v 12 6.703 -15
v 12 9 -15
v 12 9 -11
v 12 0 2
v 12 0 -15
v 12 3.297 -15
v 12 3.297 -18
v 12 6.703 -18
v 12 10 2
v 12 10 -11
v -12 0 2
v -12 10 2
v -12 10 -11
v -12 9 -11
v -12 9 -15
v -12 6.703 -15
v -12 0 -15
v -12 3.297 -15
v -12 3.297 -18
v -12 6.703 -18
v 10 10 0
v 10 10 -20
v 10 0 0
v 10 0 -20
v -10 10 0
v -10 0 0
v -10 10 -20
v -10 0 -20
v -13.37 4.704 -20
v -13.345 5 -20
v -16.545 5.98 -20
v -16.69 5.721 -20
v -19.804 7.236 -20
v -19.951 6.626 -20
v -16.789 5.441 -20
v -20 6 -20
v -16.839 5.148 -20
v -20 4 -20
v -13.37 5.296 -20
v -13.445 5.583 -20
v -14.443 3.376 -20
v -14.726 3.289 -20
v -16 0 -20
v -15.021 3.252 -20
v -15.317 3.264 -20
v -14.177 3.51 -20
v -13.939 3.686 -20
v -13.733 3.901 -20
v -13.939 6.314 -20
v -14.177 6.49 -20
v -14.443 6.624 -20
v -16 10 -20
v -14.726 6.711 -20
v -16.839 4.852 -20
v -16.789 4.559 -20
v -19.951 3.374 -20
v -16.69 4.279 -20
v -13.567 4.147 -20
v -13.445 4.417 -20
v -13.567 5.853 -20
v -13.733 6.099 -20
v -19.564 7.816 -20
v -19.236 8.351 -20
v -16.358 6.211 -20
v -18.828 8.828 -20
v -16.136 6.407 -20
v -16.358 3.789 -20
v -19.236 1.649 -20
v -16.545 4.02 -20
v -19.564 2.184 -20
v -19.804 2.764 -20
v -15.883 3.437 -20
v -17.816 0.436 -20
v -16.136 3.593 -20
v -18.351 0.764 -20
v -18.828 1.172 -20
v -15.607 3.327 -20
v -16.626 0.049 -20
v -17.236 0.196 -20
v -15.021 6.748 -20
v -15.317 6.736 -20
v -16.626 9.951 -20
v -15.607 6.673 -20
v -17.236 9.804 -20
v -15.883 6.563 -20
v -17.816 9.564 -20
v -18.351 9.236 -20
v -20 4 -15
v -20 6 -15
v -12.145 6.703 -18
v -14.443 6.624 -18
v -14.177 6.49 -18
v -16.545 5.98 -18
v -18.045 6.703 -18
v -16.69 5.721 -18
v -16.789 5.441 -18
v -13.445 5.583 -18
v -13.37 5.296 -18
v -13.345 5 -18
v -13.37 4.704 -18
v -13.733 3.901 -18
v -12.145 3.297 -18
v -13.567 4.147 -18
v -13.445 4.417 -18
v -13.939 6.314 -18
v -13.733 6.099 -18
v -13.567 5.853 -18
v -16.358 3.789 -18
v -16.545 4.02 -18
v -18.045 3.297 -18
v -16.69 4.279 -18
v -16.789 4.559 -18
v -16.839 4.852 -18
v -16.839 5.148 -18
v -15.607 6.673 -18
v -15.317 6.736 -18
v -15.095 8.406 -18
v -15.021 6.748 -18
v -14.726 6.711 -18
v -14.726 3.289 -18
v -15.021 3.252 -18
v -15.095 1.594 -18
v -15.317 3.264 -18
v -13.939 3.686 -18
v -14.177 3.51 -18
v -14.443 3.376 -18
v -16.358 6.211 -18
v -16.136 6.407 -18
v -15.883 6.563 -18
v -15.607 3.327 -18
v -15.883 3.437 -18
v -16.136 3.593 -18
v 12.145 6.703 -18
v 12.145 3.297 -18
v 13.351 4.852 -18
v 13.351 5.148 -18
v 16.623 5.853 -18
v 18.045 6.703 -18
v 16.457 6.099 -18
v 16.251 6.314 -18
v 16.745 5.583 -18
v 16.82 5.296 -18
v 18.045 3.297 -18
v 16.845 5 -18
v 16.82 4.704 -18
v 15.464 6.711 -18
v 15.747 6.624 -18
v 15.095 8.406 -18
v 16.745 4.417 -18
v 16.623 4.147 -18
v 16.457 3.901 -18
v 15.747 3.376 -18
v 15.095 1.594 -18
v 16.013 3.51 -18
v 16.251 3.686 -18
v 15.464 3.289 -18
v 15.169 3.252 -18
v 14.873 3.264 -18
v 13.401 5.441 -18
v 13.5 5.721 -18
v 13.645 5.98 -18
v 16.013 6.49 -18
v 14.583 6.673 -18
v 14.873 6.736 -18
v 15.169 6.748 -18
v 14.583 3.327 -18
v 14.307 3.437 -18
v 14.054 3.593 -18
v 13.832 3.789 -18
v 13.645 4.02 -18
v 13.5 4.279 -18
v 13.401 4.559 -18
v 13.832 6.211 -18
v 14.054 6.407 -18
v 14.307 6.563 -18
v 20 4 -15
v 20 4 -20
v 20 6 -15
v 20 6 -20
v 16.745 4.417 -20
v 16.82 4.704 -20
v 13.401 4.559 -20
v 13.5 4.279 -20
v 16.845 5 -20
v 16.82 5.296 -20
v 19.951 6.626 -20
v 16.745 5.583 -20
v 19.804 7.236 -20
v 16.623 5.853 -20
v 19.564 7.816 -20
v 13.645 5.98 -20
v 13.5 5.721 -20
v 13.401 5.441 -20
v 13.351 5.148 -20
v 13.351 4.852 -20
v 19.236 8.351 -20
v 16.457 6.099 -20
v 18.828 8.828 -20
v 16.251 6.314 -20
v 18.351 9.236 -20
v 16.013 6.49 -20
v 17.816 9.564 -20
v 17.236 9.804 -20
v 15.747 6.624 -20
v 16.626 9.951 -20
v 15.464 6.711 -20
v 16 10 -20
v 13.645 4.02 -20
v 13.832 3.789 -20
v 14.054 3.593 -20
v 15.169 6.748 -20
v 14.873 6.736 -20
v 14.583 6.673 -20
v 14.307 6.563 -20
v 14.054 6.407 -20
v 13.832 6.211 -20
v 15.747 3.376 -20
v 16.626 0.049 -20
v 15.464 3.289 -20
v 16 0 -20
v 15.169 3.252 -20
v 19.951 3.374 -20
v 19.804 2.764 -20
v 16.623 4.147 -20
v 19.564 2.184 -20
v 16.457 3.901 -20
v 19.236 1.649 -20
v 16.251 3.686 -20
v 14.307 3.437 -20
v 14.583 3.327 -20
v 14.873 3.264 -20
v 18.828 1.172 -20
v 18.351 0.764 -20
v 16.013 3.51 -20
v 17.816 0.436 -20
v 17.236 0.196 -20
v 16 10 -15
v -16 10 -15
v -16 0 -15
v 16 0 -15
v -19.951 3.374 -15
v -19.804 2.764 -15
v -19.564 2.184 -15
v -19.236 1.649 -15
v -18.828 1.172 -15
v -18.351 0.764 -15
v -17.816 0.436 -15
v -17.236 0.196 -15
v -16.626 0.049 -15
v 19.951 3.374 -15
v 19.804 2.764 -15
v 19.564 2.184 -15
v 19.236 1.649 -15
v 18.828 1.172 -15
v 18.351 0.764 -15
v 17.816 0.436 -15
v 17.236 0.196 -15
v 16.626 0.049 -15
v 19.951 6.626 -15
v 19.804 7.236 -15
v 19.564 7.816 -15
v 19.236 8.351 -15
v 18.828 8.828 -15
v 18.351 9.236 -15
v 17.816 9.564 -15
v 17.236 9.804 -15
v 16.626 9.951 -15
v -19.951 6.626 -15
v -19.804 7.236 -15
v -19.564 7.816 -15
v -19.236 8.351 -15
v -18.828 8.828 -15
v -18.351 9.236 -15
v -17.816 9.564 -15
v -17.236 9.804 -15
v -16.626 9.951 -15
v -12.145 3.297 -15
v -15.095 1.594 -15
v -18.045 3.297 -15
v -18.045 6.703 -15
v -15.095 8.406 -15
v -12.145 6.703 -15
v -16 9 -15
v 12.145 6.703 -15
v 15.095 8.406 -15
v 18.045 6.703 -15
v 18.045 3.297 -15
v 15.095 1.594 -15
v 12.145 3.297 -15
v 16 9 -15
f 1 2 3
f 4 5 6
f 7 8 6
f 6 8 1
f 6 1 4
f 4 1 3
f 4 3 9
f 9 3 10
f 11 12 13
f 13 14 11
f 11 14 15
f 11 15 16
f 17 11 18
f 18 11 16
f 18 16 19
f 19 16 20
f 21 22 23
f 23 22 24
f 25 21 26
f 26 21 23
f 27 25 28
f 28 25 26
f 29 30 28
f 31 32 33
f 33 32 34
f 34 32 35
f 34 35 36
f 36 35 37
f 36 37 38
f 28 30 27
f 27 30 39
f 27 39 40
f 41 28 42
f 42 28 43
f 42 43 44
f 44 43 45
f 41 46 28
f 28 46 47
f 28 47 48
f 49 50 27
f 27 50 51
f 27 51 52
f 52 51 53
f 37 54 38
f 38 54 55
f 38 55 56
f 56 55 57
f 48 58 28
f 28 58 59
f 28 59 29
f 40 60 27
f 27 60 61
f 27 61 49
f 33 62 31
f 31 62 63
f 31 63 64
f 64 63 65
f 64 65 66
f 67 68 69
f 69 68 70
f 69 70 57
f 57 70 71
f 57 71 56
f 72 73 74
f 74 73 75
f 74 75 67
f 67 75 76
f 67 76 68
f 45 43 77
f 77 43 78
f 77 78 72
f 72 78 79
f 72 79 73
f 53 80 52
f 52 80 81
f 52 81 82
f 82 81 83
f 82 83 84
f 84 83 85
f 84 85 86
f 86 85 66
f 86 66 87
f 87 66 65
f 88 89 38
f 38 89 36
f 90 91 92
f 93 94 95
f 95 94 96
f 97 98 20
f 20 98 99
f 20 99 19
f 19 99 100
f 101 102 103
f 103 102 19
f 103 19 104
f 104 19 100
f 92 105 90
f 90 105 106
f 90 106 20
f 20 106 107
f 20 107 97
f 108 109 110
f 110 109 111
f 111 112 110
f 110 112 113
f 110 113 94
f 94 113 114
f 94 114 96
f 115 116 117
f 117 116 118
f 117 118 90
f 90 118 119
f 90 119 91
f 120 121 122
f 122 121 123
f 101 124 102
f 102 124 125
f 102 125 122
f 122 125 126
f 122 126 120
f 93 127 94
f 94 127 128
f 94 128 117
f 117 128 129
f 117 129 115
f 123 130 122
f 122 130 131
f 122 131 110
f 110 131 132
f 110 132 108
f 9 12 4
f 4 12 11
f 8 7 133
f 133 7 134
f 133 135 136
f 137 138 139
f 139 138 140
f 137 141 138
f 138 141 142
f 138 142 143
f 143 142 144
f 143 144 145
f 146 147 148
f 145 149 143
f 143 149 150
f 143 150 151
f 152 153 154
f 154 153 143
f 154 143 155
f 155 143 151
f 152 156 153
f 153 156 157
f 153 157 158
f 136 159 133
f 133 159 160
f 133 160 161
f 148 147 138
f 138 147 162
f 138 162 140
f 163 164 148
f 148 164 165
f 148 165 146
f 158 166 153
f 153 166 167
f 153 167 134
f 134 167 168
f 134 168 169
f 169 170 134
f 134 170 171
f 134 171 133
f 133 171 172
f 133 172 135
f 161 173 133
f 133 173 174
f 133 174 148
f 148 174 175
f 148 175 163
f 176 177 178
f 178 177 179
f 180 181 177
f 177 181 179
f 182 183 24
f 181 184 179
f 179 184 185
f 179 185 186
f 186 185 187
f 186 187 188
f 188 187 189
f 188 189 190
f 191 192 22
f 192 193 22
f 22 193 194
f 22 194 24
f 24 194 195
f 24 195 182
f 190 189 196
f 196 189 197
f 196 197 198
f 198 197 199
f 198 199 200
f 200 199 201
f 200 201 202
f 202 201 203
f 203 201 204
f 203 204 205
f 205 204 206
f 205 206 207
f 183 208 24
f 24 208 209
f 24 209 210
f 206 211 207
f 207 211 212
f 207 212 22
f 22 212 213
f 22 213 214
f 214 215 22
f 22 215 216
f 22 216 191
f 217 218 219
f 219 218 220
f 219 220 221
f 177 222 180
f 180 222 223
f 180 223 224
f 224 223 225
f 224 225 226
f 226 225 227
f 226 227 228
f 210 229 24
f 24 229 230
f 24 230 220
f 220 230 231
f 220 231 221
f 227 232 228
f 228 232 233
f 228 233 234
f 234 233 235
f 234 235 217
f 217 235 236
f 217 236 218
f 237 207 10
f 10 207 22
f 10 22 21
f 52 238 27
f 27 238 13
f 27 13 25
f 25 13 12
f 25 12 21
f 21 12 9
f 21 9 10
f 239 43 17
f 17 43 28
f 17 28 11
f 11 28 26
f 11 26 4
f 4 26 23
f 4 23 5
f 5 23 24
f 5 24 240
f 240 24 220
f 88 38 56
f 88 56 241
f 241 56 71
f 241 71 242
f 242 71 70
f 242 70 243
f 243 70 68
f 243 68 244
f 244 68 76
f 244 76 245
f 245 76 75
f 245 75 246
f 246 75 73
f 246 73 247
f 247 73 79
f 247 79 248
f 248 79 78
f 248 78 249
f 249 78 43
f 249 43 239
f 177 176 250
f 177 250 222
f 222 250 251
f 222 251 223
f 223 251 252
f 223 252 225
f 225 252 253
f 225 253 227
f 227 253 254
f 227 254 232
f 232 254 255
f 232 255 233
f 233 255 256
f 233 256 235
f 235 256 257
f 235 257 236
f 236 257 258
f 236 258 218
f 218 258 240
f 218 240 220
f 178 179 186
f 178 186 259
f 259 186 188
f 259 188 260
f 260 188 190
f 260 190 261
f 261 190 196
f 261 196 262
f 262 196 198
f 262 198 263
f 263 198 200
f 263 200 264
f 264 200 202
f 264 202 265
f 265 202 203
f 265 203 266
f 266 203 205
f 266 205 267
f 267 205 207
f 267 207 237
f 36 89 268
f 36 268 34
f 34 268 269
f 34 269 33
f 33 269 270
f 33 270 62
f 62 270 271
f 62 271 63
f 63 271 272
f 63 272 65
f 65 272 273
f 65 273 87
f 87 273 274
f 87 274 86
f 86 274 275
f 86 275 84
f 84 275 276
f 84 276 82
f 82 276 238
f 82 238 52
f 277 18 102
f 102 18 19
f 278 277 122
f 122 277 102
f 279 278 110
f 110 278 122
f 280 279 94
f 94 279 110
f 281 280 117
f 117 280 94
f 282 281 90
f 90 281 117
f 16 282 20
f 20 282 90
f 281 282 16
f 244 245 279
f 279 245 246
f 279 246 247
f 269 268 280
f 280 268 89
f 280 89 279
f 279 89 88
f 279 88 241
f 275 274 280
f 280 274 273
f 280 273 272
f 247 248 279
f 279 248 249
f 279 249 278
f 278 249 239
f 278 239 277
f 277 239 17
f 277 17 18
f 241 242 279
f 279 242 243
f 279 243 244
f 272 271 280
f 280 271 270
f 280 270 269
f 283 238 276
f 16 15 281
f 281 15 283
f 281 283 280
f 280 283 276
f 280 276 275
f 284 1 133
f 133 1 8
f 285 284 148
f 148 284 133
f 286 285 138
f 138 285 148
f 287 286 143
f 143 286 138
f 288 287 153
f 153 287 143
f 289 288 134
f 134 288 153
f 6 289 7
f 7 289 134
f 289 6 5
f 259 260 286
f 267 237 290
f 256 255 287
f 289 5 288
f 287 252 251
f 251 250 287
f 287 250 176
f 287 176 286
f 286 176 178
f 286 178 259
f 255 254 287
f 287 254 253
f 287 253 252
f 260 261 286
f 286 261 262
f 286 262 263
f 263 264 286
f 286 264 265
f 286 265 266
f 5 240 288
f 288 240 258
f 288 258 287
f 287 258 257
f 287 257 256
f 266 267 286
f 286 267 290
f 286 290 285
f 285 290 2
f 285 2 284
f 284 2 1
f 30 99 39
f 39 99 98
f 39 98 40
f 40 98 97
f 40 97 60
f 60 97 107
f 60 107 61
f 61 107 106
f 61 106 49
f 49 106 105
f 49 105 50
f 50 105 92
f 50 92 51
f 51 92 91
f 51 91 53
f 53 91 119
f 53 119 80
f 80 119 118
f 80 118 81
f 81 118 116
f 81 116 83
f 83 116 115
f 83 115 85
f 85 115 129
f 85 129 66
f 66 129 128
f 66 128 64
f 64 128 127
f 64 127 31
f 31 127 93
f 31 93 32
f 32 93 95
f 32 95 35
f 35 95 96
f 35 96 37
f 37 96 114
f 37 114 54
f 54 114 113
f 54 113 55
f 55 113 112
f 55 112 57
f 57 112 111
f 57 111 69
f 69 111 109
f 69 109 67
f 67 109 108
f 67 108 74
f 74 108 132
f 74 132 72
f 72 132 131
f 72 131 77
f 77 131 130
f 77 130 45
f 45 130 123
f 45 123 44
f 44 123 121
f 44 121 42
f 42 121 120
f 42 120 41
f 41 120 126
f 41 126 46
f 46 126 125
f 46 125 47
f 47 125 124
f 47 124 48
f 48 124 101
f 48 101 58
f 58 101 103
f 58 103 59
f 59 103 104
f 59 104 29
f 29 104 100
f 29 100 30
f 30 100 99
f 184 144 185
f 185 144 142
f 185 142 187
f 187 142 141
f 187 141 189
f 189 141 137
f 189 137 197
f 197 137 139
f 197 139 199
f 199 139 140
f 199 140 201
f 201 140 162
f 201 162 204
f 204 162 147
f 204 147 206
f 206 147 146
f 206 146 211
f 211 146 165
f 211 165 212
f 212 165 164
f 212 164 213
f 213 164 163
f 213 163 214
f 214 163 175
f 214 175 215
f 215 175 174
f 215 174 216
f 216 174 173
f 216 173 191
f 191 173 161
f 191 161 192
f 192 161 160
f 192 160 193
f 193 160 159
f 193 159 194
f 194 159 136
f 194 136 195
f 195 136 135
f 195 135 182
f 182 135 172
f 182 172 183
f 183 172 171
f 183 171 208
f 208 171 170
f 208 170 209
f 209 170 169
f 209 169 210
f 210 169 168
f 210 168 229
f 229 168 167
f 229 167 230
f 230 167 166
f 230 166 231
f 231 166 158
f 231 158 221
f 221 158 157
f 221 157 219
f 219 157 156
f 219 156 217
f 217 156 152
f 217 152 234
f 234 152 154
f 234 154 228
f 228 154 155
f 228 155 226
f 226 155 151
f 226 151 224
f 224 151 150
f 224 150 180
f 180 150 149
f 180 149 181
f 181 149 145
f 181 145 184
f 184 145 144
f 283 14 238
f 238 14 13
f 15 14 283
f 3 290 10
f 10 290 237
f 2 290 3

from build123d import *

# Parameters (mm, degrees)
EXTRUDE_1_DEPTH     = 10
FILLET_1_R          = 4
EXTRUDE_2_DEPTH     = 3
SKETCH_3_R          = 1.75
CUT_EXTRUDE_1_DEPTH = 3
EXTRUDE_3_DEPTH     = 1


with BuildPart() as part:
    # Эскиз1 → Бобышка-Вытянуть1 (new body)
    with BuildSketch(Plane(origin=(0, 0, 0), x_dir=(1, 0, 0), z_dir=(0, 1, 0))):
        Polygon((-10, 0), (10, 0), (10, 20), (20, 20), (20, 18), (12, 18), (12, -2), (-12, -2), (-12, 18), (-20, 18), (-20, 20), (-10, 20), align=None)
    extrude(amount=EXTRUDE_1_DEPTH)

    # Скругление1
    fillet_1_edges = [part.edges().sort_by_distance(p)[0] for p in [
        (20, 0, -19),
        (-20, 0, -19),
        (-20, 10, -19),
        (20, 10, -19),
    ]]
    fillet(fillet_1_edges, radius=FILLET_1_R)

    # Эскиз2 → Бобышка-Вытянуть2 (add)
    with BuildSketch(Plane.XY.offset(-18)):
        with BuildLine():
            Line((-12.145, 6.703183294), (-12, 6.703183294))
            Line((-12, 6.703183294), (-12, 10))
            Line((-12, 10), (-16, 10))
            ThreePointArc((-16, 10), (-18.828427125, 8.828427125), (-20, 6))
            Line((-20, 6), (-20, 4))
            ThreePointArc((-20, 4), (-18.828427125, 1.171572875), (-16, 0))
            Line((-16, 0), (-12, 0))
            Line((-12, 0), (-12, 3.296816706))
            Line((-12, 3.296816706), (-12.145, 3.296816706))
            Line((-12.145, 3.296816706), (-15.095, 1.593633412))
            Line((-15.095, 1.593633412), (-18.045, 3.296816706))
            Line((-18.045, 3.296816706), (-18.045, 6.703183294))
            Line((-18.045, 6.703183294), (-15.095, 8.406366588))
            Line((-15.095, 8.406366588), (-12.145, 6.703183294))
        make_face()
        with BuildLine():
            Line((20, 4), (20, 6))
            ThreePointArc((20, 6), (18.828427125, 8.828427125), (16, 10))
            Line((16, 10), (12, 10))
            Line((12, 10), (12, 6.703183294))
            Line((12, 6.703183294), (12.145, 6.703183294))
            Line((12.145, 6.703183294), (15.095, 8.406366588))
            Line((15.095, 8.406366588), (18.045, 6.703183294))
            Line((18.045, 6.703183294), (18.045, 3.296816706))
            Line((18.045, 3.296816706), (15.095, 1.593633412))
            Line((15.095, 1.593633412), (12.145, 3.296816706))
            Line((12.145, 3.296816706), (12, 3.296816706))
            Line((12, 3.296816706), (12, 0))
            Line((12, 0), (16, 0))
            ThreePointArc((16, 0), (18.828427125, 1.171572875), (20, 4))
        make_face()
    extrude(amount=EXTRUDE_2_DEPTH)

    # Эскиз3 → Вырез-Вытянуть1 (cut, through all)
    with BuildSketch(Plane.XY.offset(-18)):
        with Locations((-15.095, 5)):
            Circle(SKETCH_3_R)
        with Locations((15.095, 5)):
            Circle(SKETCH_3_R)
    extrude(amount=-CUT_EXTRUDE_1_DEPTH, mode=Mode.SUBTRACT)

    # Эскиз4 → Бобышка-Вытянуть3 (add)
    with BuildSketch(Plane(origin=(0, 10, 0), x_dir=(1, 0, 0), z_dir=(0, 1, 0))):
        Polygon((-16, 15), (-12, 11), (-12, 15), align=None)
        Polygon((12, 15), (16, 15), (12, 11), align=None)
    extrude(amount=-EXTRUDE_3_DEPTH)


solid = part.part
